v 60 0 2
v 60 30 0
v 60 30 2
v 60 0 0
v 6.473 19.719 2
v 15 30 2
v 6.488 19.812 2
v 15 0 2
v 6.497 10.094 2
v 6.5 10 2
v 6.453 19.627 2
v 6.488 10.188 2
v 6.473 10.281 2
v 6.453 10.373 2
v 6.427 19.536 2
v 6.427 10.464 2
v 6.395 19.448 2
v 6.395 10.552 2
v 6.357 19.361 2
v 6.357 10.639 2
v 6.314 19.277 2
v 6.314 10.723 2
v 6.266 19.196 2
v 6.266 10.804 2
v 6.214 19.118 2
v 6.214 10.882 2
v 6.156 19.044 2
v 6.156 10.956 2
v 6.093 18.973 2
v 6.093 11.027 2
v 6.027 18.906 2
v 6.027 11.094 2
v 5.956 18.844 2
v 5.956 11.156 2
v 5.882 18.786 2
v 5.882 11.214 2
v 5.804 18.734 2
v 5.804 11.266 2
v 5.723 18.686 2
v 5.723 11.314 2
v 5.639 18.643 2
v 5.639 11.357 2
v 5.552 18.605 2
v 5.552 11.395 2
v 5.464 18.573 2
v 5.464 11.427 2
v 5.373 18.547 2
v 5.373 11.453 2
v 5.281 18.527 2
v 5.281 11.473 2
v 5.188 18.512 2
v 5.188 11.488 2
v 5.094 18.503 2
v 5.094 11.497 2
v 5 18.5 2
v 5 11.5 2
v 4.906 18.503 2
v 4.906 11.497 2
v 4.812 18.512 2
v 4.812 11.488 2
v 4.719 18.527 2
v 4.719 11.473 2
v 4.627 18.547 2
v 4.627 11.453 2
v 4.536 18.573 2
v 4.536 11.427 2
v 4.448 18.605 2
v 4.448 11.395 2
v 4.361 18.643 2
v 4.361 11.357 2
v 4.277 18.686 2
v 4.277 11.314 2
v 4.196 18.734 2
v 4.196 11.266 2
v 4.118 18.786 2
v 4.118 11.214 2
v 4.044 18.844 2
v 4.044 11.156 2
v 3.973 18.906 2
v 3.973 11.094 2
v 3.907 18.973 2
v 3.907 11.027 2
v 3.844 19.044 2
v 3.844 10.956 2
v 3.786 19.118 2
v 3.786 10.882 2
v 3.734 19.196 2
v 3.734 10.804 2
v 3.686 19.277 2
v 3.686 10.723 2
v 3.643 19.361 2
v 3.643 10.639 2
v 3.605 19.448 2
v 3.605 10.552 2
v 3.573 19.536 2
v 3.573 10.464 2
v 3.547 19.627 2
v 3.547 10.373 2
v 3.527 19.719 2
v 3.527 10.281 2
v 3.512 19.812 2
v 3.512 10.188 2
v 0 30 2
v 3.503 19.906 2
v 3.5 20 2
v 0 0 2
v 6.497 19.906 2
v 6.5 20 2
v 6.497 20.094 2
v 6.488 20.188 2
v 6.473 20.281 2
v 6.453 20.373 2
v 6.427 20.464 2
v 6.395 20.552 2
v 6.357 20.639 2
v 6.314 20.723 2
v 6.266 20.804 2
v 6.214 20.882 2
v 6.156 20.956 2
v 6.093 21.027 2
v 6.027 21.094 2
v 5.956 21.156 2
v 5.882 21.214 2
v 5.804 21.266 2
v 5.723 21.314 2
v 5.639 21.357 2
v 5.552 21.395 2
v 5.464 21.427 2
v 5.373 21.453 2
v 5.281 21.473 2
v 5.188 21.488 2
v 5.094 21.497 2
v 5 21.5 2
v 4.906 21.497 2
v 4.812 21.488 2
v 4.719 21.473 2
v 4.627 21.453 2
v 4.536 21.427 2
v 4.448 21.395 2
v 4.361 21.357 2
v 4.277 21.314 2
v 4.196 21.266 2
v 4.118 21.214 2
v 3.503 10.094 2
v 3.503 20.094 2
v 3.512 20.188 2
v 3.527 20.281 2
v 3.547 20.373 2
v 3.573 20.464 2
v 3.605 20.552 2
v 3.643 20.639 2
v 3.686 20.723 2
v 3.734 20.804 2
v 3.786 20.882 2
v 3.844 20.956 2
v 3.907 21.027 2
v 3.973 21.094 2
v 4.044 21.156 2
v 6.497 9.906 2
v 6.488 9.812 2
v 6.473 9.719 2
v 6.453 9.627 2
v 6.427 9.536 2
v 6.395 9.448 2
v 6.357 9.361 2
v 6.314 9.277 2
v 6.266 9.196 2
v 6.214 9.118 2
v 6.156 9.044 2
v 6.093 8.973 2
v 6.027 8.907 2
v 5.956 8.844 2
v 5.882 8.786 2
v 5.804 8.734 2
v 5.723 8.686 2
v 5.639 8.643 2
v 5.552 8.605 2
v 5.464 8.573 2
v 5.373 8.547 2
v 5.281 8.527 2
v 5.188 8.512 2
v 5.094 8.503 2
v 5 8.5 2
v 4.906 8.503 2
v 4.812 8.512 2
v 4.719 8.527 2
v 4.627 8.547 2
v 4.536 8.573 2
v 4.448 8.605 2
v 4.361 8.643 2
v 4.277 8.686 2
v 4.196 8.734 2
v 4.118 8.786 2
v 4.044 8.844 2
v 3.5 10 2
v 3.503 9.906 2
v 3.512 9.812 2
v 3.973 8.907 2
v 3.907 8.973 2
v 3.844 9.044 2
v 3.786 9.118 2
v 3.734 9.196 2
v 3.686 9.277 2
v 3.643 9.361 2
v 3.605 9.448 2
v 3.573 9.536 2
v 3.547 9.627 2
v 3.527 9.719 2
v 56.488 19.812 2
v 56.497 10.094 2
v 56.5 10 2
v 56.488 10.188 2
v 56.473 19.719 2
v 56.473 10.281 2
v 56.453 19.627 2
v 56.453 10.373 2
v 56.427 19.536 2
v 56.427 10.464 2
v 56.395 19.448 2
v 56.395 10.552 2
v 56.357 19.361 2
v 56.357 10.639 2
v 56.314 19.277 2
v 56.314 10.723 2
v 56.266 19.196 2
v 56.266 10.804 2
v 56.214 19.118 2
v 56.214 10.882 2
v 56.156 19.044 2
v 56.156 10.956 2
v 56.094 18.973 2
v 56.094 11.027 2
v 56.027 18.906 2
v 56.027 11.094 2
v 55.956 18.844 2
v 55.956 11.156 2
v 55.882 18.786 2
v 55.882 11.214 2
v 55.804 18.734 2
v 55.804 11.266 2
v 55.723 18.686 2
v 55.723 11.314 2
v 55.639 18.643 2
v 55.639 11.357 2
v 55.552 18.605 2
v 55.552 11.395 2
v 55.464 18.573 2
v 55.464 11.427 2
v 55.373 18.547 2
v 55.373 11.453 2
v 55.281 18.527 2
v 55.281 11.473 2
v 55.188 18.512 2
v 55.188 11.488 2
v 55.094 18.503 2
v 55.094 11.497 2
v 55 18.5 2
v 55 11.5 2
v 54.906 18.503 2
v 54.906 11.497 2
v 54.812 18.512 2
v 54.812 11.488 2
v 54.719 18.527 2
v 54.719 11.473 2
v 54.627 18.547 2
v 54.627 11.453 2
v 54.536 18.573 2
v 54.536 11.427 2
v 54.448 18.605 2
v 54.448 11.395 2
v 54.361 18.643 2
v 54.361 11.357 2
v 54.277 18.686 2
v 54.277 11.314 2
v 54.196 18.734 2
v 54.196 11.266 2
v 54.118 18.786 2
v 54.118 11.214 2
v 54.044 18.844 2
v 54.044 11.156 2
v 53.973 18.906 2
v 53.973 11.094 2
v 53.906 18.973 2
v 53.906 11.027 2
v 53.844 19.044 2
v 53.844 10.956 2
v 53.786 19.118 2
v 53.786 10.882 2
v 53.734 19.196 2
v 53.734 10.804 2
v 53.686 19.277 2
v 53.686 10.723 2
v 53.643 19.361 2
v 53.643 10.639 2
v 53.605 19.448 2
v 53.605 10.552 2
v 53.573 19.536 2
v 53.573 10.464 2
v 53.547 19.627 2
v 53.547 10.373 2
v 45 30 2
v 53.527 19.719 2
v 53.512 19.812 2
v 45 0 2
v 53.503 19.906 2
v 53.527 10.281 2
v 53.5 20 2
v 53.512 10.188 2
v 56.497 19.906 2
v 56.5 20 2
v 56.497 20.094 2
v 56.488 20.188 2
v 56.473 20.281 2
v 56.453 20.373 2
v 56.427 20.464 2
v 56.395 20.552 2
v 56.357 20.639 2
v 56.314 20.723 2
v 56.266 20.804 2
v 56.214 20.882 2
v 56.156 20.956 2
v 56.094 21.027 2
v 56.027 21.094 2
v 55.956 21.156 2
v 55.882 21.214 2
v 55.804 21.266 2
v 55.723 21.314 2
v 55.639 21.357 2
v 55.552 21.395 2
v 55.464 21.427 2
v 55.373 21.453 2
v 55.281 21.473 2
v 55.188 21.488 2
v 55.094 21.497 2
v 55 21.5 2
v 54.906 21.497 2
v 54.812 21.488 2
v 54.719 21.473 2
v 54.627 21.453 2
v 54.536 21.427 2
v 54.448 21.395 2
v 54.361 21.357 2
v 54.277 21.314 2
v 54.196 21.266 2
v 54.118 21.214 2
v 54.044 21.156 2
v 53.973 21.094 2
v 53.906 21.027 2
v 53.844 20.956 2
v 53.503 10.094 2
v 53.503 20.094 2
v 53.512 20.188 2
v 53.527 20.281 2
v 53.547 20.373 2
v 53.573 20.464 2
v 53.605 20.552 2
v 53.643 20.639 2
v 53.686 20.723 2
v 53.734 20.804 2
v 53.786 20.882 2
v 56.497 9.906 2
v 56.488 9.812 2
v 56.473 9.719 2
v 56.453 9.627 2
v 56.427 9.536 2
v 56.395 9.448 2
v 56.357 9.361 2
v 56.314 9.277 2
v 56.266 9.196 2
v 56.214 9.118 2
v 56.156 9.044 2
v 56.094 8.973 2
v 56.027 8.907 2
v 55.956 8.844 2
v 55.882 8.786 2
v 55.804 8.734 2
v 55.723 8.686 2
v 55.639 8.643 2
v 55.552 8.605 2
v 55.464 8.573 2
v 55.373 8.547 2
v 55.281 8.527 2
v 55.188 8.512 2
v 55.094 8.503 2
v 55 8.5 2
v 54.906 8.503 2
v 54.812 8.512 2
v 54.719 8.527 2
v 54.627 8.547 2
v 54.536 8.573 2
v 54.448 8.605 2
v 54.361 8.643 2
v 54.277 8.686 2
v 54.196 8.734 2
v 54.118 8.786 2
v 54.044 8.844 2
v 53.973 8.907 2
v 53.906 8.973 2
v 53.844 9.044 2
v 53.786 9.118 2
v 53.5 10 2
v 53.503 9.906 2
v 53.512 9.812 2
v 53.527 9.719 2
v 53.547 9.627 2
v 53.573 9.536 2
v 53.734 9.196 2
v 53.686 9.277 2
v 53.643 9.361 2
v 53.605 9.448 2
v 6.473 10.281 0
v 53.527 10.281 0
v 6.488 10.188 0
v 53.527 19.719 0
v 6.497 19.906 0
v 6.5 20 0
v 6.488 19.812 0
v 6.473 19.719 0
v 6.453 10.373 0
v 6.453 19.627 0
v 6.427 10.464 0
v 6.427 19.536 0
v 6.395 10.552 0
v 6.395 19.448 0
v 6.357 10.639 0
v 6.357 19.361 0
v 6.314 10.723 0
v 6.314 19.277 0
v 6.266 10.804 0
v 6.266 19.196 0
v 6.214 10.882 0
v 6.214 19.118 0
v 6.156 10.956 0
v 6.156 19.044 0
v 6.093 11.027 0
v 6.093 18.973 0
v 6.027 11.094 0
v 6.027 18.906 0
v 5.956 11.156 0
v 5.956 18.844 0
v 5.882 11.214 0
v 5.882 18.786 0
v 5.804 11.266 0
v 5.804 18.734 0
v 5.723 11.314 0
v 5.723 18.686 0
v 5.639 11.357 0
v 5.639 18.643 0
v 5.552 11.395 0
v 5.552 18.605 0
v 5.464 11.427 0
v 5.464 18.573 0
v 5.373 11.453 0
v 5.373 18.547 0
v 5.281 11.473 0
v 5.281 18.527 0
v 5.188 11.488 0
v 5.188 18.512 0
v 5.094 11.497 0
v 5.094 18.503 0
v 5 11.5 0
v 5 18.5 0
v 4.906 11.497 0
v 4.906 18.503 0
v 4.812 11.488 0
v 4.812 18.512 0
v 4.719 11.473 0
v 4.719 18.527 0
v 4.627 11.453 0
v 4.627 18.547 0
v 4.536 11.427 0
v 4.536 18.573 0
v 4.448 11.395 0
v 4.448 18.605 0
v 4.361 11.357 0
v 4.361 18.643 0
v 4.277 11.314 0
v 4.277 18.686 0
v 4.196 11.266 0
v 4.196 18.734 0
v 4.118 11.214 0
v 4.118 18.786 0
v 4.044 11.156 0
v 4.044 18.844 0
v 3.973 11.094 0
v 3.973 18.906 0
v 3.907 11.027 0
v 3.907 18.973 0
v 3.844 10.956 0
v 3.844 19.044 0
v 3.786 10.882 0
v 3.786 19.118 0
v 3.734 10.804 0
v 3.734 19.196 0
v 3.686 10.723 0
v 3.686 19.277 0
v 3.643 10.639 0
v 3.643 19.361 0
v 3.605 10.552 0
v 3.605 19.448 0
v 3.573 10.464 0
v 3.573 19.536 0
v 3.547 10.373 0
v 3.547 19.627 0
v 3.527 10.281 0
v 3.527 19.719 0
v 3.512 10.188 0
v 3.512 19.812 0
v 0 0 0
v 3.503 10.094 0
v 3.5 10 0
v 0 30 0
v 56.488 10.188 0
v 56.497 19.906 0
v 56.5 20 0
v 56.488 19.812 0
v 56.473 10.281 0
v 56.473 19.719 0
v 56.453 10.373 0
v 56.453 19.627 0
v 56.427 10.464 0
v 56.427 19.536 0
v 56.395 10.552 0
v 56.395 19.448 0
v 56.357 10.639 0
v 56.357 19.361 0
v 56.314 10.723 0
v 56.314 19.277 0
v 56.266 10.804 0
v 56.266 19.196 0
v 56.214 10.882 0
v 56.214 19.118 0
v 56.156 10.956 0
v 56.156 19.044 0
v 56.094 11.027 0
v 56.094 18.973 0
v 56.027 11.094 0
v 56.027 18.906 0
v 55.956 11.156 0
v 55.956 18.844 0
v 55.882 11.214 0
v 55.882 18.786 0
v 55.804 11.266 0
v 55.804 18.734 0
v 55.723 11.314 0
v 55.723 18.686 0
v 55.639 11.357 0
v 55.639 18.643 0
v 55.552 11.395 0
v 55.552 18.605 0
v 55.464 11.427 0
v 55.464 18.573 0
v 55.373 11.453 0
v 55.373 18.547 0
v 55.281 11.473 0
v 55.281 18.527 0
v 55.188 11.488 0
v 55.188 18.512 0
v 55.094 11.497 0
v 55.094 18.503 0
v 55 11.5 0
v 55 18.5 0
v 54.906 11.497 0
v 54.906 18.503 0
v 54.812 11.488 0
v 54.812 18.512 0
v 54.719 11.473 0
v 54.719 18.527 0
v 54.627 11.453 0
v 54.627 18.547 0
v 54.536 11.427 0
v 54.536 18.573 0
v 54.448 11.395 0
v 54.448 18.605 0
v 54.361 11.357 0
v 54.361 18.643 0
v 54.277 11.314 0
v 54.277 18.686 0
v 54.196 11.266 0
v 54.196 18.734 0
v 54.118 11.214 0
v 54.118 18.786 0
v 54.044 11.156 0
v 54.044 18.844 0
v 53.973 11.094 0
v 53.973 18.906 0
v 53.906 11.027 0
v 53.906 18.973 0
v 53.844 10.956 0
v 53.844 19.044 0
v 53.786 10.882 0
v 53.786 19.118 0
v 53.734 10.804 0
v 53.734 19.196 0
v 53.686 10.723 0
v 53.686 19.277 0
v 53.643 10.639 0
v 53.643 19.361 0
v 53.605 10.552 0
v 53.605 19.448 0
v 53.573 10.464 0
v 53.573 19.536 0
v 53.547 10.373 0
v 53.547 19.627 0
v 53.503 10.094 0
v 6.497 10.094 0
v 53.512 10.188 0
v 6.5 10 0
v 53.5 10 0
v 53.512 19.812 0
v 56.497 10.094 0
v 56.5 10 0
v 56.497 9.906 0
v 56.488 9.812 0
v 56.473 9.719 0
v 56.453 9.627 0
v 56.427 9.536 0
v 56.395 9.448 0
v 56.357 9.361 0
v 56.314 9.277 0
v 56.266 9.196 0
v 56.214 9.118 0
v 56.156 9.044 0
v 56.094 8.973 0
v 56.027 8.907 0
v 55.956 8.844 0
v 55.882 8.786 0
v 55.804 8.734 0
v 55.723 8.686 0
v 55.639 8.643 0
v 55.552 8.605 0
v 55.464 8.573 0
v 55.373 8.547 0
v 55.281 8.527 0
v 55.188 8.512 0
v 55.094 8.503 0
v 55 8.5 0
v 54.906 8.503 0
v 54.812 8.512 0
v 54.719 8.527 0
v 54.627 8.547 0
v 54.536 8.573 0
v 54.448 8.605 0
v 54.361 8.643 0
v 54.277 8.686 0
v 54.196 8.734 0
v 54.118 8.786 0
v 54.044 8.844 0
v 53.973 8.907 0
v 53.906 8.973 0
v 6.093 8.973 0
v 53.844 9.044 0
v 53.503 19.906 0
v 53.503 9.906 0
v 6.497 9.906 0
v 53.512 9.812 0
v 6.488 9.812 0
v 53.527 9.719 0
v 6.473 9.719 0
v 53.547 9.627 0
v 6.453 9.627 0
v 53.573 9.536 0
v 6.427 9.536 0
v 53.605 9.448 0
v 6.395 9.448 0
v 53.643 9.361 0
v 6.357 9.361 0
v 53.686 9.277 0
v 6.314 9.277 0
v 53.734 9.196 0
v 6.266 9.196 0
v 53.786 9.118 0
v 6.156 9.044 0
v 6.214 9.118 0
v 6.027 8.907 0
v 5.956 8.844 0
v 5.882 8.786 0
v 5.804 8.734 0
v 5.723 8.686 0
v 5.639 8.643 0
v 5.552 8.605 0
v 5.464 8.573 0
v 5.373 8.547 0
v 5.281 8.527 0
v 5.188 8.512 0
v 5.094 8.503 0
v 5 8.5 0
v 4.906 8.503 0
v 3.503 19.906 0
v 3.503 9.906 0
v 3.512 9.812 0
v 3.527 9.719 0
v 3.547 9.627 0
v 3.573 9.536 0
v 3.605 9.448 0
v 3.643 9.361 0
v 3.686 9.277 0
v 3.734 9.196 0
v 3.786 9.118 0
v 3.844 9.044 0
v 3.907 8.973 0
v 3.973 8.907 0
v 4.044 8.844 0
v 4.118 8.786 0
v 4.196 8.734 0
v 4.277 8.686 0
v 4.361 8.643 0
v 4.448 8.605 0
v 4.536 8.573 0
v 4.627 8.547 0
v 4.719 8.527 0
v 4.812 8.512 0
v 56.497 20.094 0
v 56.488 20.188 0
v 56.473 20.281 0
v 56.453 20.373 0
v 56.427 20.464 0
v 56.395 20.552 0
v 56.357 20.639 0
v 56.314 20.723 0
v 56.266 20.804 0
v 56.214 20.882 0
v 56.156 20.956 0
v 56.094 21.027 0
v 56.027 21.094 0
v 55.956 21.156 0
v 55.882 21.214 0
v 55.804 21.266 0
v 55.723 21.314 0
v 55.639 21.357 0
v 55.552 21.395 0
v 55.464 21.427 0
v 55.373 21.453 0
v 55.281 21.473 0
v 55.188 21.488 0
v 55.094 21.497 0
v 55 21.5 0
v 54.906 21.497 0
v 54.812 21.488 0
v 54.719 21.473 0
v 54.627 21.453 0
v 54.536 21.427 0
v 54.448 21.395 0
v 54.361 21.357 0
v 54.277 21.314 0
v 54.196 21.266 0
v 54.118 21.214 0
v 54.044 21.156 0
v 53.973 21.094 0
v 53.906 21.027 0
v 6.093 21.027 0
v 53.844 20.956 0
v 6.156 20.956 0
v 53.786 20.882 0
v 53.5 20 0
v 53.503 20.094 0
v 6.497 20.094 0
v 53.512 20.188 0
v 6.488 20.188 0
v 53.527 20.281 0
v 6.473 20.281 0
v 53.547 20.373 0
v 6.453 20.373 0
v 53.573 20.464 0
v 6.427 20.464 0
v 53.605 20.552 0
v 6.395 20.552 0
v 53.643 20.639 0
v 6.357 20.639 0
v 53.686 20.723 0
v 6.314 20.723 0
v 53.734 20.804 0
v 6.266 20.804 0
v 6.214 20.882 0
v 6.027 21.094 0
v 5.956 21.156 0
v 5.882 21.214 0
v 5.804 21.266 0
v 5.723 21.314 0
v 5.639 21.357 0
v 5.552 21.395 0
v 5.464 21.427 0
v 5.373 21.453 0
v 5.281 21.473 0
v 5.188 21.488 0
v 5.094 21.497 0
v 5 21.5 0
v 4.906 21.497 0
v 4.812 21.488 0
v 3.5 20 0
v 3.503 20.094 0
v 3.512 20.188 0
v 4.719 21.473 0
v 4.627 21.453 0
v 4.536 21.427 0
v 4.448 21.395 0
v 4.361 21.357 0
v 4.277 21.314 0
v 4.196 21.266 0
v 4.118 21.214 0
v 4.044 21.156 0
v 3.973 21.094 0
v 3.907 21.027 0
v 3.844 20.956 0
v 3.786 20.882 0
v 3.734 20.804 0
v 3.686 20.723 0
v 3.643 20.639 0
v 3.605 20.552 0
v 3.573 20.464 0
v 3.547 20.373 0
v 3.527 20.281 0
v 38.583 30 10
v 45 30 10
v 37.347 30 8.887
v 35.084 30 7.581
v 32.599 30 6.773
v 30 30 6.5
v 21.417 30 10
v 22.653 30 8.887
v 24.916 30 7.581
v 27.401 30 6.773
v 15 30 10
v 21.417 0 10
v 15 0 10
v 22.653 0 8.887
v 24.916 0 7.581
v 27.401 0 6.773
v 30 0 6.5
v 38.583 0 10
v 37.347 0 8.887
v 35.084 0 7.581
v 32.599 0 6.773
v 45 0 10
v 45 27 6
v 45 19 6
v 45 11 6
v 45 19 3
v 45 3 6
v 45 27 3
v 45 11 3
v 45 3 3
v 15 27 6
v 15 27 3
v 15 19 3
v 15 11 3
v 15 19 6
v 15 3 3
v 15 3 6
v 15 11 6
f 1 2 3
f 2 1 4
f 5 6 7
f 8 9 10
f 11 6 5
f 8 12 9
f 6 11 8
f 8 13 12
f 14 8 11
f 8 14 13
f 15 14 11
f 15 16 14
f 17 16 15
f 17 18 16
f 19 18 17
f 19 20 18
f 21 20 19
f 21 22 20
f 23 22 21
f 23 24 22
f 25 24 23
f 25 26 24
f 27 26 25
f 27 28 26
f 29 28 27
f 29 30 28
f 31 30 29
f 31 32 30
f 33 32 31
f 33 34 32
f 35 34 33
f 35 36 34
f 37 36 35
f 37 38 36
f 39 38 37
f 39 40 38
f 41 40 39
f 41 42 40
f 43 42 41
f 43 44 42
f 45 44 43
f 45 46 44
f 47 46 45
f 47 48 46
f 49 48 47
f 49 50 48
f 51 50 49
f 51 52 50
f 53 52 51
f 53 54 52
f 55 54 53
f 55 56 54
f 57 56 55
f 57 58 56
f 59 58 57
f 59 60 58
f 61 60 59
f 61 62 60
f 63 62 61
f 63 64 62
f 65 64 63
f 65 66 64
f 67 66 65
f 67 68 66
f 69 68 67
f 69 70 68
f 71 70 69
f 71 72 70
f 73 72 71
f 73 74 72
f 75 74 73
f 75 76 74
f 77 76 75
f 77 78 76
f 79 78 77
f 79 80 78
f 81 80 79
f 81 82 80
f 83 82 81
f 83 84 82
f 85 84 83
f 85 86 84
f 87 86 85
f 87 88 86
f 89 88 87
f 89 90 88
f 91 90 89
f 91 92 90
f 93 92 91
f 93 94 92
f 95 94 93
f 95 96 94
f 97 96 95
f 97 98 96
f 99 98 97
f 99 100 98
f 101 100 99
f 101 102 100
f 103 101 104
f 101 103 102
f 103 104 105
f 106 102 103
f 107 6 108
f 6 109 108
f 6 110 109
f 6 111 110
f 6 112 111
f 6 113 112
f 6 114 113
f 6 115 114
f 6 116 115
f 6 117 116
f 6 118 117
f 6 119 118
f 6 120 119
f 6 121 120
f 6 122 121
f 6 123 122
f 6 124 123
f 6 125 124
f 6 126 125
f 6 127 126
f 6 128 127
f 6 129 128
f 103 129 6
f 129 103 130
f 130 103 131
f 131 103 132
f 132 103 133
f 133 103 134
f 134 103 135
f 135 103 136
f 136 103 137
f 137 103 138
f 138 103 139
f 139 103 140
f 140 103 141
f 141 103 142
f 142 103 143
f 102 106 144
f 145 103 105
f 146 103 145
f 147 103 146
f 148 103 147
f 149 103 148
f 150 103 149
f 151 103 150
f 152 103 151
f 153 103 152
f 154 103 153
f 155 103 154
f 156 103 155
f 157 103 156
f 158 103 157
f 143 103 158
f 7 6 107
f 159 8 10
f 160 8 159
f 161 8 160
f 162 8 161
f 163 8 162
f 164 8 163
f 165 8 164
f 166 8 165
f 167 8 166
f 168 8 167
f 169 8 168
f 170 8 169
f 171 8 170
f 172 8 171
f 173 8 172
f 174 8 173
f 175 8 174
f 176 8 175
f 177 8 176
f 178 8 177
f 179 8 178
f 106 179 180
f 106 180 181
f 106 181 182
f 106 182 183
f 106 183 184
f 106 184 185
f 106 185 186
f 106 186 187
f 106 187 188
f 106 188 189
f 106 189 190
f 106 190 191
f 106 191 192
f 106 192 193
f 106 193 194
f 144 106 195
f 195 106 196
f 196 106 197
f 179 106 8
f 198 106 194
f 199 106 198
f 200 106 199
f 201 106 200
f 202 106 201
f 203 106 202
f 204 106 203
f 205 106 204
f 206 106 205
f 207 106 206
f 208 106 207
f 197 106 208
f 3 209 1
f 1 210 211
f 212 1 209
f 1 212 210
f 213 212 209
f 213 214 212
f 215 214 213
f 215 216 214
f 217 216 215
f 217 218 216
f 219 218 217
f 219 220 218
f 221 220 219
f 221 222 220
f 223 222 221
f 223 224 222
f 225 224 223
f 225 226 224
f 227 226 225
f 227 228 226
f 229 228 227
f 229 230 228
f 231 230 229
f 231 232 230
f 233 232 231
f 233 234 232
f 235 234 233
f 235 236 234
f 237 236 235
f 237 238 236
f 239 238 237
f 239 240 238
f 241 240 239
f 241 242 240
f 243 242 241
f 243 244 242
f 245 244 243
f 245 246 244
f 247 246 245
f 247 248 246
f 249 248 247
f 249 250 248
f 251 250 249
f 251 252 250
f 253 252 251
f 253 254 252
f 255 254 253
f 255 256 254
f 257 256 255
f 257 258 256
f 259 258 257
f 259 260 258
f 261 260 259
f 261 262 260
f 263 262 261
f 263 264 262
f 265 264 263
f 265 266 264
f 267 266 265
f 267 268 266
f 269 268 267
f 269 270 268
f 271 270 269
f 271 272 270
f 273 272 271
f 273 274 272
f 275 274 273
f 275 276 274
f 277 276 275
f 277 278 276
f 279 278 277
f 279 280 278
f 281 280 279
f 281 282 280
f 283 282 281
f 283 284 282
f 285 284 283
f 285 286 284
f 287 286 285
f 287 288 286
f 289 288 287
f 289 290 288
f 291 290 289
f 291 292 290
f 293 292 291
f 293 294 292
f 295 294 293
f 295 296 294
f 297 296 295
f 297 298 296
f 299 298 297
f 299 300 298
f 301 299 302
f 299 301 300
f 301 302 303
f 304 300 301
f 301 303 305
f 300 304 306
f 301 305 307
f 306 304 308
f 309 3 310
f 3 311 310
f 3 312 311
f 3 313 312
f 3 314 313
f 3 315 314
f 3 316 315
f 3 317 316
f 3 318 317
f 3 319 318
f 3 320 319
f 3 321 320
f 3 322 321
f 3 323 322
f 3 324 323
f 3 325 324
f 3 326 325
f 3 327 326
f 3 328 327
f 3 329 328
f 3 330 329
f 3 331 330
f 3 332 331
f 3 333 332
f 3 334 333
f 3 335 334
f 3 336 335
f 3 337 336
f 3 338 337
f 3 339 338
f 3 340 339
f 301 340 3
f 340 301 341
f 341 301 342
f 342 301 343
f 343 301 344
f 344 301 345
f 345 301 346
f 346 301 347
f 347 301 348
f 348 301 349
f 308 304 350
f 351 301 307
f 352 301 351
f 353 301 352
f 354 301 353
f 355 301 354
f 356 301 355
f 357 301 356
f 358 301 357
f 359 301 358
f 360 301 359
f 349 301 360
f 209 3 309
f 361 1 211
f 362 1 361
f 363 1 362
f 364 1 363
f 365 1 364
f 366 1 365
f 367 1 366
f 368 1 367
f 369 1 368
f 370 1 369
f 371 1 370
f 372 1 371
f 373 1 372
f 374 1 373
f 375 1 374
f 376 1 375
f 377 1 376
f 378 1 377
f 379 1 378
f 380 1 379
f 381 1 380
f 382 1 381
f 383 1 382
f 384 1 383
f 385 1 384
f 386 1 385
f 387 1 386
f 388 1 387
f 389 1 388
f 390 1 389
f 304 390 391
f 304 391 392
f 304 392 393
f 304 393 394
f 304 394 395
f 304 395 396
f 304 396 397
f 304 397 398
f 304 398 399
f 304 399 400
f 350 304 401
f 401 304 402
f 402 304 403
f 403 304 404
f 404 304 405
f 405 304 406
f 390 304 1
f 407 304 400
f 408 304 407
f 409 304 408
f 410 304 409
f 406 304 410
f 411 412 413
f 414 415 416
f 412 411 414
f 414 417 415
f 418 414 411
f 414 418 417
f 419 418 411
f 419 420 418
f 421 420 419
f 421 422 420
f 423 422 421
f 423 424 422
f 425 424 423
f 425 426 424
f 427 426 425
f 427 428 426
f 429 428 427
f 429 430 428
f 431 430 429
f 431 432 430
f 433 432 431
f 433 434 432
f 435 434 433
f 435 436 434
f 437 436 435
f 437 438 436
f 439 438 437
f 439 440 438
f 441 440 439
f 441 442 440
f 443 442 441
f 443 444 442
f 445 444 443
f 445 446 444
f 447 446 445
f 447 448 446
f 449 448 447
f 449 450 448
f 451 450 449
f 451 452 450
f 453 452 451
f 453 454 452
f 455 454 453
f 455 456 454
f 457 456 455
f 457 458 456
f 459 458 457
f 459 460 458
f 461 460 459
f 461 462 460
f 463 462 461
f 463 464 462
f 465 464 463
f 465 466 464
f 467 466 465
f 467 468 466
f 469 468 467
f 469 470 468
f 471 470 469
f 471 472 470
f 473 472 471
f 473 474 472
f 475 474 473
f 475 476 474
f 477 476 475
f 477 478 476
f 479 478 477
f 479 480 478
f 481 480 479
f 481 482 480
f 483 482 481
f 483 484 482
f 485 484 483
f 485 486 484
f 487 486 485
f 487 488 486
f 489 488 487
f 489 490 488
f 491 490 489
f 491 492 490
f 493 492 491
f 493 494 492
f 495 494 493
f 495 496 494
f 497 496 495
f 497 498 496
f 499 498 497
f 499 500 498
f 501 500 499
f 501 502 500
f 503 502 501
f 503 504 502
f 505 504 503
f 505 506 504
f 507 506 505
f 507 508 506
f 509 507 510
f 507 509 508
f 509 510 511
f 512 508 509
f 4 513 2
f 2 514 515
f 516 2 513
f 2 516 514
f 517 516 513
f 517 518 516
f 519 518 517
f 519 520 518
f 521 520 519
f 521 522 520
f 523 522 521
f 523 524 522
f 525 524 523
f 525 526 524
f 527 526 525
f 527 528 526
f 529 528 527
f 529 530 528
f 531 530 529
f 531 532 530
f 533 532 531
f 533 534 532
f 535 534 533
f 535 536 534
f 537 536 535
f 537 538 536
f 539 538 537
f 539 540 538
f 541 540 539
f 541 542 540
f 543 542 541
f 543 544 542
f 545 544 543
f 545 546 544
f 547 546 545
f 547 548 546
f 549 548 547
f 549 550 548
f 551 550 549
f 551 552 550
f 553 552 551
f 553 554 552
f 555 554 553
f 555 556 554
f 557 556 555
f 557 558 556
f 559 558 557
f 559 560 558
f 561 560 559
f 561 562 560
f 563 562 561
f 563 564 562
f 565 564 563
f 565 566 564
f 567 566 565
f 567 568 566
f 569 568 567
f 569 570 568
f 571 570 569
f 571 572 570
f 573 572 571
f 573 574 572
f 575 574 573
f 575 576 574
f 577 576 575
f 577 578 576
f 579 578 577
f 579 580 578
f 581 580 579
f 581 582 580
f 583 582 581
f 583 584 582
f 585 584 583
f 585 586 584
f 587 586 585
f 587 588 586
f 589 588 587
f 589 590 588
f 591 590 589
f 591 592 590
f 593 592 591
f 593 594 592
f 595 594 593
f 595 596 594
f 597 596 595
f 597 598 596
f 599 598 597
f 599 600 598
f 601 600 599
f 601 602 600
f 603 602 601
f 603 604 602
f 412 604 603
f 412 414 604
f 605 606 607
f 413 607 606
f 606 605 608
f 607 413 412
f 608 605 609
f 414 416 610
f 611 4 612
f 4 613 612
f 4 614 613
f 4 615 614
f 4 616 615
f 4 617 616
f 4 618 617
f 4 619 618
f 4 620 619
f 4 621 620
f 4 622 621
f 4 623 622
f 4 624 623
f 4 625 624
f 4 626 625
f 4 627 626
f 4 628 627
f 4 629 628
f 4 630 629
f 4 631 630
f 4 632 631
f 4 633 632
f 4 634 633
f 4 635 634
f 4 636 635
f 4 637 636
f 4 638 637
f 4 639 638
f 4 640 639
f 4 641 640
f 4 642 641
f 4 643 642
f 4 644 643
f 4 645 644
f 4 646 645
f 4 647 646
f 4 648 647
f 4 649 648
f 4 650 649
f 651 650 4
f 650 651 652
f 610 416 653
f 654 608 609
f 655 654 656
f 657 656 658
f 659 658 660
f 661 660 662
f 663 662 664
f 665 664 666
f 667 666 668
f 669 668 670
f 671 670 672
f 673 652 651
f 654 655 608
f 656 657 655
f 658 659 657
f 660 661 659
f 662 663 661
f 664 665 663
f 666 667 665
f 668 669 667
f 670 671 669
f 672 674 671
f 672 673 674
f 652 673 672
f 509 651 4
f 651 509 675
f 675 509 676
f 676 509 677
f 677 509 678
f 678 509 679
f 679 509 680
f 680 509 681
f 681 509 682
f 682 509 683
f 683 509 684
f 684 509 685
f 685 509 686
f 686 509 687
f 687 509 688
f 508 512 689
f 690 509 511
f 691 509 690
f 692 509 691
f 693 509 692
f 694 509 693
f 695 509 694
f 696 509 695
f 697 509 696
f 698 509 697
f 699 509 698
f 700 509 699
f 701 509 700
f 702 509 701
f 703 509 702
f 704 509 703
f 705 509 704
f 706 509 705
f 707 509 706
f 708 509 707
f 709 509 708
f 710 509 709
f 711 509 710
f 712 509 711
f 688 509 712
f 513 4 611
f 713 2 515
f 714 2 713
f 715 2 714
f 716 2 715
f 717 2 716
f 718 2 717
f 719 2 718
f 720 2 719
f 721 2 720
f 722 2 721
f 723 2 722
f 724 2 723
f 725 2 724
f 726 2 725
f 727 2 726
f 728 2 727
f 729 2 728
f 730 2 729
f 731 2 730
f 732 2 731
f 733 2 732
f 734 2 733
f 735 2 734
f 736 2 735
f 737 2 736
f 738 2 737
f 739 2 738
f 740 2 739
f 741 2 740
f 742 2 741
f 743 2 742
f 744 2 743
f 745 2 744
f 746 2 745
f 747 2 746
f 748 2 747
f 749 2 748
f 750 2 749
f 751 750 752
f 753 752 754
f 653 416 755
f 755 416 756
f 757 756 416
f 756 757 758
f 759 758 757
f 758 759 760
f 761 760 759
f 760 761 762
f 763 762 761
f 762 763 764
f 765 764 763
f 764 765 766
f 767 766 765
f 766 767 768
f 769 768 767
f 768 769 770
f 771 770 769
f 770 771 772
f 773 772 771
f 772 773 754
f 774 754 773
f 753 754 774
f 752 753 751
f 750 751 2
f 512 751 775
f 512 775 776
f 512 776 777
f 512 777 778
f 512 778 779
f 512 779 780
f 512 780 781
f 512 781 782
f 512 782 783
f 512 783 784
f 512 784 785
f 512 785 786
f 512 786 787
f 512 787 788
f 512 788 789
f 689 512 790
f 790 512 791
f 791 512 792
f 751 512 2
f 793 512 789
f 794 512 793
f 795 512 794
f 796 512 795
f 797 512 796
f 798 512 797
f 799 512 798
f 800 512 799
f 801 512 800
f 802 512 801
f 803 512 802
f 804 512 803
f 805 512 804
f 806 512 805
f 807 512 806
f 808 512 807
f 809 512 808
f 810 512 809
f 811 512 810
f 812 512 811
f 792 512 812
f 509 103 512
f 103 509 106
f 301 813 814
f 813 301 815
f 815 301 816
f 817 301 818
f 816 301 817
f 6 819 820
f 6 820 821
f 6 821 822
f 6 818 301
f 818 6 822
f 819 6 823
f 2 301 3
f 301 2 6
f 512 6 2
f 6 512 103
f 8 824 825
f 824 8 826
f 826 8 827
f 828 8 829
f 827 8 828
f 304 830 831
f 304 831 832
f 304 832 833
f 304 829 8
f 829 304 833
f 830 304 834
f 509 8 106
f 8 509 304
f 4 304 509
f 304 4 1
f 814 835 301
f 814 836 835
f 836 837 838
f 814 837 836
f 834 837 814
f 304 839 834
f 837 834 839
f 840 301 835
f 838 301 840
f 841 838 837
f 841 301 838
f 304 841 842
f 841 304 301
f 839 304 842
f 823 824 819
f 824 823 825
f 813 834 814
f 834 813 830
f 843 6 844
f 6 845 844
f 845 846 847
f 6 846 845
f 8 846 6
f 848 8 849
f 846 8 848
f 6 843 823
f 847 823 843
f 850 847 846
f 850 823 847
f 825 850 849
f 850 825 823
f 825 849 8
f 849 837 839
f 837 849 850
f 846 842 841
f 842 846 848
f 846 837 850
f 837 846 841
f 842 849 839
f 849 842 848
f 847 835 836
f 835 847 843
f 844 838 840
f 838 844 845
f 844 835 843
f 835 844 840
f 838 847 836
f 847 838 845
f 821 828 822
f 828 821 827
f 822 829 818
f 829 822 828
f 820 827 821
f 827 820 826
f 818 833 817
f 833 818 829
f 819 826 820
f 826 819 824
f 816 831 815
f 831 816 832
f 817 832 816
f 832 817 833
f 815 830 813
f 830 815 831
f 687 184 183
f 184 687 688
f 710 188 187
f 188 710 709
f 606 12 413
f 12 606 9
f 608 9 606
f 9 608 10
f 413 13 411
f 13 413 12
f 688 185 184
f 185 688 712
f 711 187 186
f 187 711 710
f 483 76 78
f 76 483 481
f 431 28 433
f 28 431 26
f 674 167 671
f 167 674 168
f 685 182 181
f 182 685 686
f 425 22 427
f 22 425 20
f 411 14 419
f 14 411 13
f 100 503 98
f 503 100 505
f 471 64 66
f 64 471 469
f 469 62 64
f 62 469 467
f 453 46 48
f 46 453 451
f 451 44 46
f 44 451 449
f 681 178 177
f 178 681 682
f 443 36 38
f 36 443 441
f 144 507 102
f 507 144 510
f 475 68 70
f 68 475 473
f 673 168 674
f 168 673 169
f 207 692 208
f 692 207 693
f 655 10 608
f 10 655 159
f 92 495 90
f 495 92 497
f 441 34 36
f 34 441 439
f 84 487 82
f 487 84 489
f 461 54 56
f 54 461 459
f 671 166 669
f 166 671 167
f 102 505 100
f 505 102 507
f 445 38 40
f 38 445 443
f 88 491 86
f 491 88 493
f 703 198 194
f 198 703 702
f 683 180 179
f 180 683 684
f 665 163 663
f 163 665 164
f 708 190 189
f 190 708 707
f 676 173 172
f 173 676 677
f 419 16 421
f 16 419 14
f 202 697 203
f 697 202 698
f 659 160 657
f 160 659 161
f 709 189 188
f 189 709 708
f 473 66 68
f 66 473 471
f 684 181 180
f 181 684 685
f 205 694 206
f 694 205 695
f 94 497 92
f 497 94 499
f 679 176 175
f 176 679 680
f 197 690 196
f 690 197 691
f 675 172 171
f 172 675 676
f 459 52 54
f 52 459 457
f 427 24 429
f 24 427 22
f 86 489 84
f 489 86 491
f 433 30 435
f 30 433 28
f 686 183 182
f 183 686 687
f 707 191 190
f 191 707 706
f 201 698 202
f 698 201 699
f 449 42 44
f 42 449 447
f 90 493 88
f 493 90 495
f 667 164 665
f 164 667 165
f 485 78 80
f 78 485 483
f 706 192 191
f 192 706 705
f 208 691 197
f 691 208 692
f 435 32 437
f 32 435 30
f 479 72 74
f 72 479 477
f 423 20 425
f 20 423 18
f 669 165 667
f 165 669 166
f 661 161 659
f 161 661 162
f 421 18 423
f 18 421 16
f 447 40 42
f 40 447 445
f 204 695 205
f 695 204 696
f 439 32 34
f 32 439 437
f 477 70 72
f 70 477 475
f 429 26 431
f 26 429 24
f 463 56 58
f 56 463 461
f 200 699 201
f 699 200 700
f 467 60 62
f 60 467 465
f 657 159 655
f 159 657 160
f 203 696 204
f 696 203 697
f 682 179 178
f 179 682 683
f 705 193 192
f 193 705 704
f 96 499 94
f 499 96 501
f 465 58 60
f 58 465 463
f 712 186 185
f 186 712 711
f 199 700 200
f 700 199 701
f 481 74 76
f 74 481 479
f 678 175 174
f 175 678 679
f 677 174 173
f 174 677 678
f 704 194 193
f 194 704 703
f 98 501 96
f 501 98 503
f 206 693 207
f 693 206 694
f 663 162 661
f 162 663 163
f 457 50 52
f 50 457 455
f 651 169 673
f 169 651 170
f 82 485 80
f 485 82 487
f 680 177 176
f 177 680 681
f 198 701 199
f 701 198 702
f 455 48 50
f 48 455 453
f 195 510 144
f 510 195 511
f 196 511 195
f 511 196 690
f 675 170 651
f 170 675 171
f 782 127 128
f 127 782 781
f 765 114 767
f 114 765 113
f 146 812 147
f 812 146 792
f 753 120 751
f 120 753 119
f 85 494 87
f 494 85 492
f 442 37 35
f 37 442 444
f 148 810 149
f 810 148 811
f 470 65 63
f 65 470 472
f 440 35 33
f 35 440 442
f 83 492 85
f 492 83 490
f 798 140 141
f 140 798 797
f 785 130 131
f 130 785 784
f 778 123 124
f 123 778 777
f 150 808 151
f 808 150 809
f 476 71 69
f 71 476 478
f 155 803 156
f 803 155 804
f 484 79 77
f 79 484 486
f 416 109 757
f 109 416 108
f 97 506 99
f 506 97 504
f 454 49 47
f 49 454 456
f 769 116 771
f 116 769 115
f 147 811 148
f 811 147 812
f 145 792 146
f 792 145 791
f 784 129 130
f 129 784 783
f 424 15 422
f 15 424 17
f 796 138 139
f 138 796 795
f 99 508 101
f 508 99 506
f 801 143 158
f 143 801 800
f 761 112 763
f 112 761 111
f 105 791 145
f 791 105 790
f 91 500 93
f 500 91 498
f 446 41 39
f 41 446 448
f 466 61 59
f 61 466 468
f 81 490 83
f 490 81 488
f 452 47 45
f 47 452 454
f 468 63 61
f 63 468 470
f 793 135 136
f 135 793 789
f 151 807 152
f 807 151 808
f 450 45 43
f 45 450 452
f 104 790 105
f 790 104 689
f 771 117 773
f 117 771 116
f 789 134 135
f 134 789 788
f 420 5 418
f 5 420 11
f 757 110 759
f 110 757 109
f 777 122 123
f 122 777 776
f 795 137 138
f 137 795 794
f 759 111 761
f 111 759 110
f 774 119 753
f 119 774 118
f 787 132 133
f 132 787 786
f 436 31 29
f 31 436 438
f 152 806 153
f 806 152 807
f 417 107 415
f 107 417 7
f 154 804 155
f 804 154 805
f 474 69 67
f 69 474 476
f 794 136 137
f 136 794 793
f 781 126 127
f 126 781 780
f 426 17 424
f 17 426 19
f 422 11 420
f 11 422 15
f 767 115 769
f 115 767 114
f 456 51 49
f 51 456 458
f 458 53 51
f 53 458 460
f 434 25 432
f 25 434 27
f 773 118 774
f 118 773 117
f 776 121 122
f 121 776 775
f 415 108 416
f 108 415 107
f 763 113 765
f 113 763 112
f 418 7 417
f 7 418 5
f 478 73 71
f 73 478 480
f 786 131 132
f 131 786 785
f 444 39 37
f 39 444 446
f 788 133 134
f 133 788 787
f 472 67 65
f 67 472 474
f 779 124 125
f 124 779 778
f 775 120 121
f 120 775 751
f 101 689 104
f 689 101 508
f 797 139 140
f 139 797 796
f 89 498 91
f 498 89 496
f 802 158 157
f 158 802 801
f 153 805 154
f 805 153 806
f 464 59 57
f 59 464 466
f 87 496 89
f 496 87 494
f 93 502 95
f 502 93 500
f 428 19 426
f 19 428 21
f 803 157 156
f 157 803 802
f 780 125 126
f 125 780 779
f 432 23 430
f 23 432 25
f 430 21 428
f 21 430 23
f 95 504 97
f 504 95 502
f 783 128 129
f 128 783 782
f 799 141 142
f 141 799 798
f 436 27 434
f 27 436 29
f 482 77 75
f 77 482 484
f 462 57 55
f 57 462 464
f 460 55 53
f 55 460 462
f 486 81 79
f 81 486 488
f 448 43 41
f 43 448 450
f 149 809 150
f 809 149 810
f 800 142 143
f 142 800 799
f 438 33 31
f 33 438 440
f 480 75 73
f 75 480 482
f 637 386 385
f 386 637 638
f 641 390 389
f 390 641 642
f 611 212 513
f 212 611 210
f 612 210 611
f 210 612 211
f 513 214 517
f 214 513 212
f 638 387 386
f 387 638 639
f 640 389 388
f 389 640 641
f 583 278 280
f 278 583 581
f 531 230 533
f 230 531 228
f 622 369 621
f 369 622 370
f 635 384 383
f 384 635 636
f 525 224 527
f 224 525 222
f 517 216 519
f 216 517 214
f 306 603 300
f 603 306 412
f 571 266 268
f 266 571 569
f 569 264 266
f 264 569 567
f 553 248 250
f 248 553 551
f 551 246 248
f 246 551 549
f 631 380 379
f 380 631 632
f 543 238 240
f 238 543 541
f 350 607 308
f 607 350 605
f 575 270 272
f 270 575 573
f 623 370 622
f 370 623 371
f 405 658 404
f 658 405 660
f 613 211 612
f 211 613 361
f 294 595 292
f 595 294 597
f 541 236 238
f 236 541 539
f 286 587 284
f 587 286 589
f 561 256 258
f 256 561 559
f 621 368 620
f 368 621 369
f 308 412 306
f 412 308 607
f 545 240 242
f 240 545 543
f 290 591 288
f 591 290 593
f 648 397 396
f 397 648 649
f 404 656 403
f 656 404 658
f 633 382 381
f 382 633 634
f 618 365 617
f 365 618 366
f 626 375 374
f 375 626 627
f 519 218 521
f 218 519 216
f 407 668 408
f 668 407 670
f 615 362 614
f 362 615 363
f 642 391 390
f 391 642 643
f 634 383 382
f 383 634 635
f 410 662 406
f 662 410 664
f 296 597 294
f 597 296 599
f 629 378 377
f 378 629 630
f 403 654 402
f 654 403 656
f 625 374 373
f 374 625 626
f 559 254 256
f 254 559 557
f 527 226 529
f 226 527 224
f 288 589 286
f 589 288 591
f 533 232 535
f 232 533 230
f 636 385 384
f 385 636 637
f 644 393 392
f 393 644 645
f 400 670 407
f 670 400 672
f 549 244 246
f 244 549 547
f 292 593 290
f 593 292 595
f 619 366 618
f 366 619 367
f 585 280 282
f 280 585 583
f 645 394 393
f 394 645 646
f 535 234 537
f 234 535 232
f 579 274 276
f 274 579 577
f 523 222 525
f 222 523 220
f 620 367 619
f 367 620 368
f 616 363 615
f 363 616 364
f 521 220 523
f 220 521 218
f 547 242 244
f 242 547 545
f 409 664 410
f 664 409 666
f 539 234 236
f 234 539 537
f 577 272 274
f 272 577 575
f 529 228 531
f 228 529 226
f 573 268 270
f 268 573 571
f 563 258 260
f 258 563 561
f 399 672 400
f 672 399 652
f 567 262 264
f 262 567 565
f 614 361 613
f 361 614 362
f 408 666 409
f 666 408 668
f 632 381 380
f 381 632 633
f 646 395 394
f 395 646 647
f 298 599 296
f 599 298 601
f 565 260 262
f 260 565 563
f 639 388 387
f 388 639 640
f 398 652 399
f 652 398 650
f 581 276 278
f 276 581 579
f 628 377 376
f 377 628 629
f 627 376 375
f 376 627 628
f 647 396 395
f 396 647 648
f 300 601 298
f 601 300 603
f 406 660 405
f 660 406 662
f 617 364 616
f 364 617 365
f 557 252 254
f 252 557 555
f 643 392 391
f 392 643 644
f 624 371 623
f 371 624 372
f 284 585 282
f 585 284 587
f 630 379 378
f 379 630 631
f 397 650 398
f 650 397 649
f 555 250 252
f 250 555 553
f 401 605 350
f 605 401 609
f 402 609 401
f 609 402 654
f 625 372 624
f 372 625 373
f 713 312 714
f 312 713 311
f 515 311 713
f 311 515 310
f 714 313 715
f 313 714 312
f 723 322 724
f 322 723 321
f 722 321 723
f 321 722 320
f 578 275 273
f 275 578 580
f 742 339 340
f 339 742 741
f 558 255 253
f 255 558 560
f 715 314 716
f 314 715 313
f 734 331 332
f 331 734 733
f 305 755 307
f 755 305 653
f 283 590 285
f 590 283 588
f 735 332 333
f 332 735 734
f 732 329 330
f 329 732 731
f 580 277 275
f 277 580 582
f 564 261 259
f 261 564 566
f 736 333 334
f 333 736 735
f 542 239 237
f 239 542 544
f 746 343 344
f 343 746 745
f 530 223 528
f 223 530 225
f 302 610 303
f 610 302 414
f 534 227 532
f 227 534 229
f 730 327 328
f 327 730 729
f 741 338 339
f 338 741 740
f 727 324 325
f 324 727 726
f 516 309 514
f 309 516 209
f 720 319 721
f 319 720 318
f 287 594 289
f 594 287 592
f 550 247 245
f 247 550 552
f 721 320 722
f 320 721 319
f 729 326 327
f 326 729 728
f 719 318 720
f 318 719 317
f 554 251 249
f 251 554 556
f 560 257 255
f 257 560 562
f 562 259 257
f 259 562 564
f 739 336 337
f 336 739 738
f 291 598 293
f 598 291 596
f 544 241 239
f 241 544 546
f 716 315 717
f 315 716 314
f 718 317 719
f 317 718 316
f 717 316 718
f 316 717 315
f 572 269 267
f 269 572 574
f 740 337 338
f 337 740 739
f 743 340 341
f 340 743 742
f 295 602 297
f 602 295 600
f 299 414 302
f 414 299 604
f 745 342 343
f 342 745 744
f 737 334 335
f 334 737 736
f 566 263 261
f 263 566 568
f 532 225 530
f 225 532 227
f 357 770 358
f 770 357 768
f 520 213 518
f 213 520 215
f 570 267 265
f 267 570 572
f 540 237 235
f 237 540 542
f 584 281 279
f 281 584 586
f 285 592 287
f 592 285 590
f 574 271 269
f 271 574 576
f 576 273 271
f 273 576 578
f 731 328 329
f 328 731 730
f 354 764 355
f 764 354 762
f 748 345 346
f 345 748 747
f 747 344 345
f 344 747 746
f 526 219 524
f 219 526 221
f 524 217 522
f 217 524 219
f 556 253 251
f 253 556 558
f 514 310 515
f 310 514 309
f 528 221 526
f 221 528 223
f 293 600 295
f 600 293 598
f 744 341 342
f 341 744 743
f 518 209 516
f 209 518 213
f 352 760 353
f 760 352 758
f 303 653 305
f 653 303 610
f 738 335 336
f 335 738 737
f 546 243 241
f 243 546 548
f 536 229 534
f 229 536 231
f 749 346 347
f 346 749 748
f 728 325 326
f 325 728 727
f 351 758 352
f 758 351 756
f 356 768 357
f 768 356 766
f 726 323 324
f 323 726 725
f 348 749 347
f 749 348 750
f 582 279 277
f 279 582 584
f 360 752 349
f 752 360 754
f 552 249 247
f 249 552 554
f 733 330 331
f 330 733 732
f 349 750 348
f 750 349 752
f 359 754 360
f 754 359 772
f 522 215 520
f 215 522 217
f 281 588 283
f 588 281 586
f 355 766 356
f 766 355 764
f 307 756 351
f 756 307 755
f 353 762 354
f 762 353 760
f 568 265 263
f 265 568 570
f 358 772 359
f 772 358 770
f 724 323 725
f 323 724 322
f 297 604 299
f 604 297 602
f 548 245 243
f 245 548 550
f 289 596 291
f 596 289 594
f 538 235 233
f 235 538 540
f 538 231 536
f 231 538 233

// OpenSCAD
difference() {
    union() {
        cube([60, 30, 2]);
        translate([15, 0, 0]) cube([30,30,10]);
    };
    translate([5, 3, 3]) cube([50, 8, 3]);
    translate([5, 19, 3]) cube([50, 8, 3]);
    
    // pipe
    translate([30, 15, 19]) rotate([0, 90, 90]) cylinder(40, 12.5, 12.5, true);
    
    // bolts
    translate([5, 10, -5]) cylinder(10, 1.5, 1.5, $fn=100);
    translate([5, 20, -5]) cylinder(10, 1.5, 1.5, $fn=100);
    translate([55, 10, -5]) cylinder(10, 1.5, 1.5, $fn=100);
    translate([55, 20, -5]) cylinder(10, 1.5, 1.5, $fn=100); 
}
